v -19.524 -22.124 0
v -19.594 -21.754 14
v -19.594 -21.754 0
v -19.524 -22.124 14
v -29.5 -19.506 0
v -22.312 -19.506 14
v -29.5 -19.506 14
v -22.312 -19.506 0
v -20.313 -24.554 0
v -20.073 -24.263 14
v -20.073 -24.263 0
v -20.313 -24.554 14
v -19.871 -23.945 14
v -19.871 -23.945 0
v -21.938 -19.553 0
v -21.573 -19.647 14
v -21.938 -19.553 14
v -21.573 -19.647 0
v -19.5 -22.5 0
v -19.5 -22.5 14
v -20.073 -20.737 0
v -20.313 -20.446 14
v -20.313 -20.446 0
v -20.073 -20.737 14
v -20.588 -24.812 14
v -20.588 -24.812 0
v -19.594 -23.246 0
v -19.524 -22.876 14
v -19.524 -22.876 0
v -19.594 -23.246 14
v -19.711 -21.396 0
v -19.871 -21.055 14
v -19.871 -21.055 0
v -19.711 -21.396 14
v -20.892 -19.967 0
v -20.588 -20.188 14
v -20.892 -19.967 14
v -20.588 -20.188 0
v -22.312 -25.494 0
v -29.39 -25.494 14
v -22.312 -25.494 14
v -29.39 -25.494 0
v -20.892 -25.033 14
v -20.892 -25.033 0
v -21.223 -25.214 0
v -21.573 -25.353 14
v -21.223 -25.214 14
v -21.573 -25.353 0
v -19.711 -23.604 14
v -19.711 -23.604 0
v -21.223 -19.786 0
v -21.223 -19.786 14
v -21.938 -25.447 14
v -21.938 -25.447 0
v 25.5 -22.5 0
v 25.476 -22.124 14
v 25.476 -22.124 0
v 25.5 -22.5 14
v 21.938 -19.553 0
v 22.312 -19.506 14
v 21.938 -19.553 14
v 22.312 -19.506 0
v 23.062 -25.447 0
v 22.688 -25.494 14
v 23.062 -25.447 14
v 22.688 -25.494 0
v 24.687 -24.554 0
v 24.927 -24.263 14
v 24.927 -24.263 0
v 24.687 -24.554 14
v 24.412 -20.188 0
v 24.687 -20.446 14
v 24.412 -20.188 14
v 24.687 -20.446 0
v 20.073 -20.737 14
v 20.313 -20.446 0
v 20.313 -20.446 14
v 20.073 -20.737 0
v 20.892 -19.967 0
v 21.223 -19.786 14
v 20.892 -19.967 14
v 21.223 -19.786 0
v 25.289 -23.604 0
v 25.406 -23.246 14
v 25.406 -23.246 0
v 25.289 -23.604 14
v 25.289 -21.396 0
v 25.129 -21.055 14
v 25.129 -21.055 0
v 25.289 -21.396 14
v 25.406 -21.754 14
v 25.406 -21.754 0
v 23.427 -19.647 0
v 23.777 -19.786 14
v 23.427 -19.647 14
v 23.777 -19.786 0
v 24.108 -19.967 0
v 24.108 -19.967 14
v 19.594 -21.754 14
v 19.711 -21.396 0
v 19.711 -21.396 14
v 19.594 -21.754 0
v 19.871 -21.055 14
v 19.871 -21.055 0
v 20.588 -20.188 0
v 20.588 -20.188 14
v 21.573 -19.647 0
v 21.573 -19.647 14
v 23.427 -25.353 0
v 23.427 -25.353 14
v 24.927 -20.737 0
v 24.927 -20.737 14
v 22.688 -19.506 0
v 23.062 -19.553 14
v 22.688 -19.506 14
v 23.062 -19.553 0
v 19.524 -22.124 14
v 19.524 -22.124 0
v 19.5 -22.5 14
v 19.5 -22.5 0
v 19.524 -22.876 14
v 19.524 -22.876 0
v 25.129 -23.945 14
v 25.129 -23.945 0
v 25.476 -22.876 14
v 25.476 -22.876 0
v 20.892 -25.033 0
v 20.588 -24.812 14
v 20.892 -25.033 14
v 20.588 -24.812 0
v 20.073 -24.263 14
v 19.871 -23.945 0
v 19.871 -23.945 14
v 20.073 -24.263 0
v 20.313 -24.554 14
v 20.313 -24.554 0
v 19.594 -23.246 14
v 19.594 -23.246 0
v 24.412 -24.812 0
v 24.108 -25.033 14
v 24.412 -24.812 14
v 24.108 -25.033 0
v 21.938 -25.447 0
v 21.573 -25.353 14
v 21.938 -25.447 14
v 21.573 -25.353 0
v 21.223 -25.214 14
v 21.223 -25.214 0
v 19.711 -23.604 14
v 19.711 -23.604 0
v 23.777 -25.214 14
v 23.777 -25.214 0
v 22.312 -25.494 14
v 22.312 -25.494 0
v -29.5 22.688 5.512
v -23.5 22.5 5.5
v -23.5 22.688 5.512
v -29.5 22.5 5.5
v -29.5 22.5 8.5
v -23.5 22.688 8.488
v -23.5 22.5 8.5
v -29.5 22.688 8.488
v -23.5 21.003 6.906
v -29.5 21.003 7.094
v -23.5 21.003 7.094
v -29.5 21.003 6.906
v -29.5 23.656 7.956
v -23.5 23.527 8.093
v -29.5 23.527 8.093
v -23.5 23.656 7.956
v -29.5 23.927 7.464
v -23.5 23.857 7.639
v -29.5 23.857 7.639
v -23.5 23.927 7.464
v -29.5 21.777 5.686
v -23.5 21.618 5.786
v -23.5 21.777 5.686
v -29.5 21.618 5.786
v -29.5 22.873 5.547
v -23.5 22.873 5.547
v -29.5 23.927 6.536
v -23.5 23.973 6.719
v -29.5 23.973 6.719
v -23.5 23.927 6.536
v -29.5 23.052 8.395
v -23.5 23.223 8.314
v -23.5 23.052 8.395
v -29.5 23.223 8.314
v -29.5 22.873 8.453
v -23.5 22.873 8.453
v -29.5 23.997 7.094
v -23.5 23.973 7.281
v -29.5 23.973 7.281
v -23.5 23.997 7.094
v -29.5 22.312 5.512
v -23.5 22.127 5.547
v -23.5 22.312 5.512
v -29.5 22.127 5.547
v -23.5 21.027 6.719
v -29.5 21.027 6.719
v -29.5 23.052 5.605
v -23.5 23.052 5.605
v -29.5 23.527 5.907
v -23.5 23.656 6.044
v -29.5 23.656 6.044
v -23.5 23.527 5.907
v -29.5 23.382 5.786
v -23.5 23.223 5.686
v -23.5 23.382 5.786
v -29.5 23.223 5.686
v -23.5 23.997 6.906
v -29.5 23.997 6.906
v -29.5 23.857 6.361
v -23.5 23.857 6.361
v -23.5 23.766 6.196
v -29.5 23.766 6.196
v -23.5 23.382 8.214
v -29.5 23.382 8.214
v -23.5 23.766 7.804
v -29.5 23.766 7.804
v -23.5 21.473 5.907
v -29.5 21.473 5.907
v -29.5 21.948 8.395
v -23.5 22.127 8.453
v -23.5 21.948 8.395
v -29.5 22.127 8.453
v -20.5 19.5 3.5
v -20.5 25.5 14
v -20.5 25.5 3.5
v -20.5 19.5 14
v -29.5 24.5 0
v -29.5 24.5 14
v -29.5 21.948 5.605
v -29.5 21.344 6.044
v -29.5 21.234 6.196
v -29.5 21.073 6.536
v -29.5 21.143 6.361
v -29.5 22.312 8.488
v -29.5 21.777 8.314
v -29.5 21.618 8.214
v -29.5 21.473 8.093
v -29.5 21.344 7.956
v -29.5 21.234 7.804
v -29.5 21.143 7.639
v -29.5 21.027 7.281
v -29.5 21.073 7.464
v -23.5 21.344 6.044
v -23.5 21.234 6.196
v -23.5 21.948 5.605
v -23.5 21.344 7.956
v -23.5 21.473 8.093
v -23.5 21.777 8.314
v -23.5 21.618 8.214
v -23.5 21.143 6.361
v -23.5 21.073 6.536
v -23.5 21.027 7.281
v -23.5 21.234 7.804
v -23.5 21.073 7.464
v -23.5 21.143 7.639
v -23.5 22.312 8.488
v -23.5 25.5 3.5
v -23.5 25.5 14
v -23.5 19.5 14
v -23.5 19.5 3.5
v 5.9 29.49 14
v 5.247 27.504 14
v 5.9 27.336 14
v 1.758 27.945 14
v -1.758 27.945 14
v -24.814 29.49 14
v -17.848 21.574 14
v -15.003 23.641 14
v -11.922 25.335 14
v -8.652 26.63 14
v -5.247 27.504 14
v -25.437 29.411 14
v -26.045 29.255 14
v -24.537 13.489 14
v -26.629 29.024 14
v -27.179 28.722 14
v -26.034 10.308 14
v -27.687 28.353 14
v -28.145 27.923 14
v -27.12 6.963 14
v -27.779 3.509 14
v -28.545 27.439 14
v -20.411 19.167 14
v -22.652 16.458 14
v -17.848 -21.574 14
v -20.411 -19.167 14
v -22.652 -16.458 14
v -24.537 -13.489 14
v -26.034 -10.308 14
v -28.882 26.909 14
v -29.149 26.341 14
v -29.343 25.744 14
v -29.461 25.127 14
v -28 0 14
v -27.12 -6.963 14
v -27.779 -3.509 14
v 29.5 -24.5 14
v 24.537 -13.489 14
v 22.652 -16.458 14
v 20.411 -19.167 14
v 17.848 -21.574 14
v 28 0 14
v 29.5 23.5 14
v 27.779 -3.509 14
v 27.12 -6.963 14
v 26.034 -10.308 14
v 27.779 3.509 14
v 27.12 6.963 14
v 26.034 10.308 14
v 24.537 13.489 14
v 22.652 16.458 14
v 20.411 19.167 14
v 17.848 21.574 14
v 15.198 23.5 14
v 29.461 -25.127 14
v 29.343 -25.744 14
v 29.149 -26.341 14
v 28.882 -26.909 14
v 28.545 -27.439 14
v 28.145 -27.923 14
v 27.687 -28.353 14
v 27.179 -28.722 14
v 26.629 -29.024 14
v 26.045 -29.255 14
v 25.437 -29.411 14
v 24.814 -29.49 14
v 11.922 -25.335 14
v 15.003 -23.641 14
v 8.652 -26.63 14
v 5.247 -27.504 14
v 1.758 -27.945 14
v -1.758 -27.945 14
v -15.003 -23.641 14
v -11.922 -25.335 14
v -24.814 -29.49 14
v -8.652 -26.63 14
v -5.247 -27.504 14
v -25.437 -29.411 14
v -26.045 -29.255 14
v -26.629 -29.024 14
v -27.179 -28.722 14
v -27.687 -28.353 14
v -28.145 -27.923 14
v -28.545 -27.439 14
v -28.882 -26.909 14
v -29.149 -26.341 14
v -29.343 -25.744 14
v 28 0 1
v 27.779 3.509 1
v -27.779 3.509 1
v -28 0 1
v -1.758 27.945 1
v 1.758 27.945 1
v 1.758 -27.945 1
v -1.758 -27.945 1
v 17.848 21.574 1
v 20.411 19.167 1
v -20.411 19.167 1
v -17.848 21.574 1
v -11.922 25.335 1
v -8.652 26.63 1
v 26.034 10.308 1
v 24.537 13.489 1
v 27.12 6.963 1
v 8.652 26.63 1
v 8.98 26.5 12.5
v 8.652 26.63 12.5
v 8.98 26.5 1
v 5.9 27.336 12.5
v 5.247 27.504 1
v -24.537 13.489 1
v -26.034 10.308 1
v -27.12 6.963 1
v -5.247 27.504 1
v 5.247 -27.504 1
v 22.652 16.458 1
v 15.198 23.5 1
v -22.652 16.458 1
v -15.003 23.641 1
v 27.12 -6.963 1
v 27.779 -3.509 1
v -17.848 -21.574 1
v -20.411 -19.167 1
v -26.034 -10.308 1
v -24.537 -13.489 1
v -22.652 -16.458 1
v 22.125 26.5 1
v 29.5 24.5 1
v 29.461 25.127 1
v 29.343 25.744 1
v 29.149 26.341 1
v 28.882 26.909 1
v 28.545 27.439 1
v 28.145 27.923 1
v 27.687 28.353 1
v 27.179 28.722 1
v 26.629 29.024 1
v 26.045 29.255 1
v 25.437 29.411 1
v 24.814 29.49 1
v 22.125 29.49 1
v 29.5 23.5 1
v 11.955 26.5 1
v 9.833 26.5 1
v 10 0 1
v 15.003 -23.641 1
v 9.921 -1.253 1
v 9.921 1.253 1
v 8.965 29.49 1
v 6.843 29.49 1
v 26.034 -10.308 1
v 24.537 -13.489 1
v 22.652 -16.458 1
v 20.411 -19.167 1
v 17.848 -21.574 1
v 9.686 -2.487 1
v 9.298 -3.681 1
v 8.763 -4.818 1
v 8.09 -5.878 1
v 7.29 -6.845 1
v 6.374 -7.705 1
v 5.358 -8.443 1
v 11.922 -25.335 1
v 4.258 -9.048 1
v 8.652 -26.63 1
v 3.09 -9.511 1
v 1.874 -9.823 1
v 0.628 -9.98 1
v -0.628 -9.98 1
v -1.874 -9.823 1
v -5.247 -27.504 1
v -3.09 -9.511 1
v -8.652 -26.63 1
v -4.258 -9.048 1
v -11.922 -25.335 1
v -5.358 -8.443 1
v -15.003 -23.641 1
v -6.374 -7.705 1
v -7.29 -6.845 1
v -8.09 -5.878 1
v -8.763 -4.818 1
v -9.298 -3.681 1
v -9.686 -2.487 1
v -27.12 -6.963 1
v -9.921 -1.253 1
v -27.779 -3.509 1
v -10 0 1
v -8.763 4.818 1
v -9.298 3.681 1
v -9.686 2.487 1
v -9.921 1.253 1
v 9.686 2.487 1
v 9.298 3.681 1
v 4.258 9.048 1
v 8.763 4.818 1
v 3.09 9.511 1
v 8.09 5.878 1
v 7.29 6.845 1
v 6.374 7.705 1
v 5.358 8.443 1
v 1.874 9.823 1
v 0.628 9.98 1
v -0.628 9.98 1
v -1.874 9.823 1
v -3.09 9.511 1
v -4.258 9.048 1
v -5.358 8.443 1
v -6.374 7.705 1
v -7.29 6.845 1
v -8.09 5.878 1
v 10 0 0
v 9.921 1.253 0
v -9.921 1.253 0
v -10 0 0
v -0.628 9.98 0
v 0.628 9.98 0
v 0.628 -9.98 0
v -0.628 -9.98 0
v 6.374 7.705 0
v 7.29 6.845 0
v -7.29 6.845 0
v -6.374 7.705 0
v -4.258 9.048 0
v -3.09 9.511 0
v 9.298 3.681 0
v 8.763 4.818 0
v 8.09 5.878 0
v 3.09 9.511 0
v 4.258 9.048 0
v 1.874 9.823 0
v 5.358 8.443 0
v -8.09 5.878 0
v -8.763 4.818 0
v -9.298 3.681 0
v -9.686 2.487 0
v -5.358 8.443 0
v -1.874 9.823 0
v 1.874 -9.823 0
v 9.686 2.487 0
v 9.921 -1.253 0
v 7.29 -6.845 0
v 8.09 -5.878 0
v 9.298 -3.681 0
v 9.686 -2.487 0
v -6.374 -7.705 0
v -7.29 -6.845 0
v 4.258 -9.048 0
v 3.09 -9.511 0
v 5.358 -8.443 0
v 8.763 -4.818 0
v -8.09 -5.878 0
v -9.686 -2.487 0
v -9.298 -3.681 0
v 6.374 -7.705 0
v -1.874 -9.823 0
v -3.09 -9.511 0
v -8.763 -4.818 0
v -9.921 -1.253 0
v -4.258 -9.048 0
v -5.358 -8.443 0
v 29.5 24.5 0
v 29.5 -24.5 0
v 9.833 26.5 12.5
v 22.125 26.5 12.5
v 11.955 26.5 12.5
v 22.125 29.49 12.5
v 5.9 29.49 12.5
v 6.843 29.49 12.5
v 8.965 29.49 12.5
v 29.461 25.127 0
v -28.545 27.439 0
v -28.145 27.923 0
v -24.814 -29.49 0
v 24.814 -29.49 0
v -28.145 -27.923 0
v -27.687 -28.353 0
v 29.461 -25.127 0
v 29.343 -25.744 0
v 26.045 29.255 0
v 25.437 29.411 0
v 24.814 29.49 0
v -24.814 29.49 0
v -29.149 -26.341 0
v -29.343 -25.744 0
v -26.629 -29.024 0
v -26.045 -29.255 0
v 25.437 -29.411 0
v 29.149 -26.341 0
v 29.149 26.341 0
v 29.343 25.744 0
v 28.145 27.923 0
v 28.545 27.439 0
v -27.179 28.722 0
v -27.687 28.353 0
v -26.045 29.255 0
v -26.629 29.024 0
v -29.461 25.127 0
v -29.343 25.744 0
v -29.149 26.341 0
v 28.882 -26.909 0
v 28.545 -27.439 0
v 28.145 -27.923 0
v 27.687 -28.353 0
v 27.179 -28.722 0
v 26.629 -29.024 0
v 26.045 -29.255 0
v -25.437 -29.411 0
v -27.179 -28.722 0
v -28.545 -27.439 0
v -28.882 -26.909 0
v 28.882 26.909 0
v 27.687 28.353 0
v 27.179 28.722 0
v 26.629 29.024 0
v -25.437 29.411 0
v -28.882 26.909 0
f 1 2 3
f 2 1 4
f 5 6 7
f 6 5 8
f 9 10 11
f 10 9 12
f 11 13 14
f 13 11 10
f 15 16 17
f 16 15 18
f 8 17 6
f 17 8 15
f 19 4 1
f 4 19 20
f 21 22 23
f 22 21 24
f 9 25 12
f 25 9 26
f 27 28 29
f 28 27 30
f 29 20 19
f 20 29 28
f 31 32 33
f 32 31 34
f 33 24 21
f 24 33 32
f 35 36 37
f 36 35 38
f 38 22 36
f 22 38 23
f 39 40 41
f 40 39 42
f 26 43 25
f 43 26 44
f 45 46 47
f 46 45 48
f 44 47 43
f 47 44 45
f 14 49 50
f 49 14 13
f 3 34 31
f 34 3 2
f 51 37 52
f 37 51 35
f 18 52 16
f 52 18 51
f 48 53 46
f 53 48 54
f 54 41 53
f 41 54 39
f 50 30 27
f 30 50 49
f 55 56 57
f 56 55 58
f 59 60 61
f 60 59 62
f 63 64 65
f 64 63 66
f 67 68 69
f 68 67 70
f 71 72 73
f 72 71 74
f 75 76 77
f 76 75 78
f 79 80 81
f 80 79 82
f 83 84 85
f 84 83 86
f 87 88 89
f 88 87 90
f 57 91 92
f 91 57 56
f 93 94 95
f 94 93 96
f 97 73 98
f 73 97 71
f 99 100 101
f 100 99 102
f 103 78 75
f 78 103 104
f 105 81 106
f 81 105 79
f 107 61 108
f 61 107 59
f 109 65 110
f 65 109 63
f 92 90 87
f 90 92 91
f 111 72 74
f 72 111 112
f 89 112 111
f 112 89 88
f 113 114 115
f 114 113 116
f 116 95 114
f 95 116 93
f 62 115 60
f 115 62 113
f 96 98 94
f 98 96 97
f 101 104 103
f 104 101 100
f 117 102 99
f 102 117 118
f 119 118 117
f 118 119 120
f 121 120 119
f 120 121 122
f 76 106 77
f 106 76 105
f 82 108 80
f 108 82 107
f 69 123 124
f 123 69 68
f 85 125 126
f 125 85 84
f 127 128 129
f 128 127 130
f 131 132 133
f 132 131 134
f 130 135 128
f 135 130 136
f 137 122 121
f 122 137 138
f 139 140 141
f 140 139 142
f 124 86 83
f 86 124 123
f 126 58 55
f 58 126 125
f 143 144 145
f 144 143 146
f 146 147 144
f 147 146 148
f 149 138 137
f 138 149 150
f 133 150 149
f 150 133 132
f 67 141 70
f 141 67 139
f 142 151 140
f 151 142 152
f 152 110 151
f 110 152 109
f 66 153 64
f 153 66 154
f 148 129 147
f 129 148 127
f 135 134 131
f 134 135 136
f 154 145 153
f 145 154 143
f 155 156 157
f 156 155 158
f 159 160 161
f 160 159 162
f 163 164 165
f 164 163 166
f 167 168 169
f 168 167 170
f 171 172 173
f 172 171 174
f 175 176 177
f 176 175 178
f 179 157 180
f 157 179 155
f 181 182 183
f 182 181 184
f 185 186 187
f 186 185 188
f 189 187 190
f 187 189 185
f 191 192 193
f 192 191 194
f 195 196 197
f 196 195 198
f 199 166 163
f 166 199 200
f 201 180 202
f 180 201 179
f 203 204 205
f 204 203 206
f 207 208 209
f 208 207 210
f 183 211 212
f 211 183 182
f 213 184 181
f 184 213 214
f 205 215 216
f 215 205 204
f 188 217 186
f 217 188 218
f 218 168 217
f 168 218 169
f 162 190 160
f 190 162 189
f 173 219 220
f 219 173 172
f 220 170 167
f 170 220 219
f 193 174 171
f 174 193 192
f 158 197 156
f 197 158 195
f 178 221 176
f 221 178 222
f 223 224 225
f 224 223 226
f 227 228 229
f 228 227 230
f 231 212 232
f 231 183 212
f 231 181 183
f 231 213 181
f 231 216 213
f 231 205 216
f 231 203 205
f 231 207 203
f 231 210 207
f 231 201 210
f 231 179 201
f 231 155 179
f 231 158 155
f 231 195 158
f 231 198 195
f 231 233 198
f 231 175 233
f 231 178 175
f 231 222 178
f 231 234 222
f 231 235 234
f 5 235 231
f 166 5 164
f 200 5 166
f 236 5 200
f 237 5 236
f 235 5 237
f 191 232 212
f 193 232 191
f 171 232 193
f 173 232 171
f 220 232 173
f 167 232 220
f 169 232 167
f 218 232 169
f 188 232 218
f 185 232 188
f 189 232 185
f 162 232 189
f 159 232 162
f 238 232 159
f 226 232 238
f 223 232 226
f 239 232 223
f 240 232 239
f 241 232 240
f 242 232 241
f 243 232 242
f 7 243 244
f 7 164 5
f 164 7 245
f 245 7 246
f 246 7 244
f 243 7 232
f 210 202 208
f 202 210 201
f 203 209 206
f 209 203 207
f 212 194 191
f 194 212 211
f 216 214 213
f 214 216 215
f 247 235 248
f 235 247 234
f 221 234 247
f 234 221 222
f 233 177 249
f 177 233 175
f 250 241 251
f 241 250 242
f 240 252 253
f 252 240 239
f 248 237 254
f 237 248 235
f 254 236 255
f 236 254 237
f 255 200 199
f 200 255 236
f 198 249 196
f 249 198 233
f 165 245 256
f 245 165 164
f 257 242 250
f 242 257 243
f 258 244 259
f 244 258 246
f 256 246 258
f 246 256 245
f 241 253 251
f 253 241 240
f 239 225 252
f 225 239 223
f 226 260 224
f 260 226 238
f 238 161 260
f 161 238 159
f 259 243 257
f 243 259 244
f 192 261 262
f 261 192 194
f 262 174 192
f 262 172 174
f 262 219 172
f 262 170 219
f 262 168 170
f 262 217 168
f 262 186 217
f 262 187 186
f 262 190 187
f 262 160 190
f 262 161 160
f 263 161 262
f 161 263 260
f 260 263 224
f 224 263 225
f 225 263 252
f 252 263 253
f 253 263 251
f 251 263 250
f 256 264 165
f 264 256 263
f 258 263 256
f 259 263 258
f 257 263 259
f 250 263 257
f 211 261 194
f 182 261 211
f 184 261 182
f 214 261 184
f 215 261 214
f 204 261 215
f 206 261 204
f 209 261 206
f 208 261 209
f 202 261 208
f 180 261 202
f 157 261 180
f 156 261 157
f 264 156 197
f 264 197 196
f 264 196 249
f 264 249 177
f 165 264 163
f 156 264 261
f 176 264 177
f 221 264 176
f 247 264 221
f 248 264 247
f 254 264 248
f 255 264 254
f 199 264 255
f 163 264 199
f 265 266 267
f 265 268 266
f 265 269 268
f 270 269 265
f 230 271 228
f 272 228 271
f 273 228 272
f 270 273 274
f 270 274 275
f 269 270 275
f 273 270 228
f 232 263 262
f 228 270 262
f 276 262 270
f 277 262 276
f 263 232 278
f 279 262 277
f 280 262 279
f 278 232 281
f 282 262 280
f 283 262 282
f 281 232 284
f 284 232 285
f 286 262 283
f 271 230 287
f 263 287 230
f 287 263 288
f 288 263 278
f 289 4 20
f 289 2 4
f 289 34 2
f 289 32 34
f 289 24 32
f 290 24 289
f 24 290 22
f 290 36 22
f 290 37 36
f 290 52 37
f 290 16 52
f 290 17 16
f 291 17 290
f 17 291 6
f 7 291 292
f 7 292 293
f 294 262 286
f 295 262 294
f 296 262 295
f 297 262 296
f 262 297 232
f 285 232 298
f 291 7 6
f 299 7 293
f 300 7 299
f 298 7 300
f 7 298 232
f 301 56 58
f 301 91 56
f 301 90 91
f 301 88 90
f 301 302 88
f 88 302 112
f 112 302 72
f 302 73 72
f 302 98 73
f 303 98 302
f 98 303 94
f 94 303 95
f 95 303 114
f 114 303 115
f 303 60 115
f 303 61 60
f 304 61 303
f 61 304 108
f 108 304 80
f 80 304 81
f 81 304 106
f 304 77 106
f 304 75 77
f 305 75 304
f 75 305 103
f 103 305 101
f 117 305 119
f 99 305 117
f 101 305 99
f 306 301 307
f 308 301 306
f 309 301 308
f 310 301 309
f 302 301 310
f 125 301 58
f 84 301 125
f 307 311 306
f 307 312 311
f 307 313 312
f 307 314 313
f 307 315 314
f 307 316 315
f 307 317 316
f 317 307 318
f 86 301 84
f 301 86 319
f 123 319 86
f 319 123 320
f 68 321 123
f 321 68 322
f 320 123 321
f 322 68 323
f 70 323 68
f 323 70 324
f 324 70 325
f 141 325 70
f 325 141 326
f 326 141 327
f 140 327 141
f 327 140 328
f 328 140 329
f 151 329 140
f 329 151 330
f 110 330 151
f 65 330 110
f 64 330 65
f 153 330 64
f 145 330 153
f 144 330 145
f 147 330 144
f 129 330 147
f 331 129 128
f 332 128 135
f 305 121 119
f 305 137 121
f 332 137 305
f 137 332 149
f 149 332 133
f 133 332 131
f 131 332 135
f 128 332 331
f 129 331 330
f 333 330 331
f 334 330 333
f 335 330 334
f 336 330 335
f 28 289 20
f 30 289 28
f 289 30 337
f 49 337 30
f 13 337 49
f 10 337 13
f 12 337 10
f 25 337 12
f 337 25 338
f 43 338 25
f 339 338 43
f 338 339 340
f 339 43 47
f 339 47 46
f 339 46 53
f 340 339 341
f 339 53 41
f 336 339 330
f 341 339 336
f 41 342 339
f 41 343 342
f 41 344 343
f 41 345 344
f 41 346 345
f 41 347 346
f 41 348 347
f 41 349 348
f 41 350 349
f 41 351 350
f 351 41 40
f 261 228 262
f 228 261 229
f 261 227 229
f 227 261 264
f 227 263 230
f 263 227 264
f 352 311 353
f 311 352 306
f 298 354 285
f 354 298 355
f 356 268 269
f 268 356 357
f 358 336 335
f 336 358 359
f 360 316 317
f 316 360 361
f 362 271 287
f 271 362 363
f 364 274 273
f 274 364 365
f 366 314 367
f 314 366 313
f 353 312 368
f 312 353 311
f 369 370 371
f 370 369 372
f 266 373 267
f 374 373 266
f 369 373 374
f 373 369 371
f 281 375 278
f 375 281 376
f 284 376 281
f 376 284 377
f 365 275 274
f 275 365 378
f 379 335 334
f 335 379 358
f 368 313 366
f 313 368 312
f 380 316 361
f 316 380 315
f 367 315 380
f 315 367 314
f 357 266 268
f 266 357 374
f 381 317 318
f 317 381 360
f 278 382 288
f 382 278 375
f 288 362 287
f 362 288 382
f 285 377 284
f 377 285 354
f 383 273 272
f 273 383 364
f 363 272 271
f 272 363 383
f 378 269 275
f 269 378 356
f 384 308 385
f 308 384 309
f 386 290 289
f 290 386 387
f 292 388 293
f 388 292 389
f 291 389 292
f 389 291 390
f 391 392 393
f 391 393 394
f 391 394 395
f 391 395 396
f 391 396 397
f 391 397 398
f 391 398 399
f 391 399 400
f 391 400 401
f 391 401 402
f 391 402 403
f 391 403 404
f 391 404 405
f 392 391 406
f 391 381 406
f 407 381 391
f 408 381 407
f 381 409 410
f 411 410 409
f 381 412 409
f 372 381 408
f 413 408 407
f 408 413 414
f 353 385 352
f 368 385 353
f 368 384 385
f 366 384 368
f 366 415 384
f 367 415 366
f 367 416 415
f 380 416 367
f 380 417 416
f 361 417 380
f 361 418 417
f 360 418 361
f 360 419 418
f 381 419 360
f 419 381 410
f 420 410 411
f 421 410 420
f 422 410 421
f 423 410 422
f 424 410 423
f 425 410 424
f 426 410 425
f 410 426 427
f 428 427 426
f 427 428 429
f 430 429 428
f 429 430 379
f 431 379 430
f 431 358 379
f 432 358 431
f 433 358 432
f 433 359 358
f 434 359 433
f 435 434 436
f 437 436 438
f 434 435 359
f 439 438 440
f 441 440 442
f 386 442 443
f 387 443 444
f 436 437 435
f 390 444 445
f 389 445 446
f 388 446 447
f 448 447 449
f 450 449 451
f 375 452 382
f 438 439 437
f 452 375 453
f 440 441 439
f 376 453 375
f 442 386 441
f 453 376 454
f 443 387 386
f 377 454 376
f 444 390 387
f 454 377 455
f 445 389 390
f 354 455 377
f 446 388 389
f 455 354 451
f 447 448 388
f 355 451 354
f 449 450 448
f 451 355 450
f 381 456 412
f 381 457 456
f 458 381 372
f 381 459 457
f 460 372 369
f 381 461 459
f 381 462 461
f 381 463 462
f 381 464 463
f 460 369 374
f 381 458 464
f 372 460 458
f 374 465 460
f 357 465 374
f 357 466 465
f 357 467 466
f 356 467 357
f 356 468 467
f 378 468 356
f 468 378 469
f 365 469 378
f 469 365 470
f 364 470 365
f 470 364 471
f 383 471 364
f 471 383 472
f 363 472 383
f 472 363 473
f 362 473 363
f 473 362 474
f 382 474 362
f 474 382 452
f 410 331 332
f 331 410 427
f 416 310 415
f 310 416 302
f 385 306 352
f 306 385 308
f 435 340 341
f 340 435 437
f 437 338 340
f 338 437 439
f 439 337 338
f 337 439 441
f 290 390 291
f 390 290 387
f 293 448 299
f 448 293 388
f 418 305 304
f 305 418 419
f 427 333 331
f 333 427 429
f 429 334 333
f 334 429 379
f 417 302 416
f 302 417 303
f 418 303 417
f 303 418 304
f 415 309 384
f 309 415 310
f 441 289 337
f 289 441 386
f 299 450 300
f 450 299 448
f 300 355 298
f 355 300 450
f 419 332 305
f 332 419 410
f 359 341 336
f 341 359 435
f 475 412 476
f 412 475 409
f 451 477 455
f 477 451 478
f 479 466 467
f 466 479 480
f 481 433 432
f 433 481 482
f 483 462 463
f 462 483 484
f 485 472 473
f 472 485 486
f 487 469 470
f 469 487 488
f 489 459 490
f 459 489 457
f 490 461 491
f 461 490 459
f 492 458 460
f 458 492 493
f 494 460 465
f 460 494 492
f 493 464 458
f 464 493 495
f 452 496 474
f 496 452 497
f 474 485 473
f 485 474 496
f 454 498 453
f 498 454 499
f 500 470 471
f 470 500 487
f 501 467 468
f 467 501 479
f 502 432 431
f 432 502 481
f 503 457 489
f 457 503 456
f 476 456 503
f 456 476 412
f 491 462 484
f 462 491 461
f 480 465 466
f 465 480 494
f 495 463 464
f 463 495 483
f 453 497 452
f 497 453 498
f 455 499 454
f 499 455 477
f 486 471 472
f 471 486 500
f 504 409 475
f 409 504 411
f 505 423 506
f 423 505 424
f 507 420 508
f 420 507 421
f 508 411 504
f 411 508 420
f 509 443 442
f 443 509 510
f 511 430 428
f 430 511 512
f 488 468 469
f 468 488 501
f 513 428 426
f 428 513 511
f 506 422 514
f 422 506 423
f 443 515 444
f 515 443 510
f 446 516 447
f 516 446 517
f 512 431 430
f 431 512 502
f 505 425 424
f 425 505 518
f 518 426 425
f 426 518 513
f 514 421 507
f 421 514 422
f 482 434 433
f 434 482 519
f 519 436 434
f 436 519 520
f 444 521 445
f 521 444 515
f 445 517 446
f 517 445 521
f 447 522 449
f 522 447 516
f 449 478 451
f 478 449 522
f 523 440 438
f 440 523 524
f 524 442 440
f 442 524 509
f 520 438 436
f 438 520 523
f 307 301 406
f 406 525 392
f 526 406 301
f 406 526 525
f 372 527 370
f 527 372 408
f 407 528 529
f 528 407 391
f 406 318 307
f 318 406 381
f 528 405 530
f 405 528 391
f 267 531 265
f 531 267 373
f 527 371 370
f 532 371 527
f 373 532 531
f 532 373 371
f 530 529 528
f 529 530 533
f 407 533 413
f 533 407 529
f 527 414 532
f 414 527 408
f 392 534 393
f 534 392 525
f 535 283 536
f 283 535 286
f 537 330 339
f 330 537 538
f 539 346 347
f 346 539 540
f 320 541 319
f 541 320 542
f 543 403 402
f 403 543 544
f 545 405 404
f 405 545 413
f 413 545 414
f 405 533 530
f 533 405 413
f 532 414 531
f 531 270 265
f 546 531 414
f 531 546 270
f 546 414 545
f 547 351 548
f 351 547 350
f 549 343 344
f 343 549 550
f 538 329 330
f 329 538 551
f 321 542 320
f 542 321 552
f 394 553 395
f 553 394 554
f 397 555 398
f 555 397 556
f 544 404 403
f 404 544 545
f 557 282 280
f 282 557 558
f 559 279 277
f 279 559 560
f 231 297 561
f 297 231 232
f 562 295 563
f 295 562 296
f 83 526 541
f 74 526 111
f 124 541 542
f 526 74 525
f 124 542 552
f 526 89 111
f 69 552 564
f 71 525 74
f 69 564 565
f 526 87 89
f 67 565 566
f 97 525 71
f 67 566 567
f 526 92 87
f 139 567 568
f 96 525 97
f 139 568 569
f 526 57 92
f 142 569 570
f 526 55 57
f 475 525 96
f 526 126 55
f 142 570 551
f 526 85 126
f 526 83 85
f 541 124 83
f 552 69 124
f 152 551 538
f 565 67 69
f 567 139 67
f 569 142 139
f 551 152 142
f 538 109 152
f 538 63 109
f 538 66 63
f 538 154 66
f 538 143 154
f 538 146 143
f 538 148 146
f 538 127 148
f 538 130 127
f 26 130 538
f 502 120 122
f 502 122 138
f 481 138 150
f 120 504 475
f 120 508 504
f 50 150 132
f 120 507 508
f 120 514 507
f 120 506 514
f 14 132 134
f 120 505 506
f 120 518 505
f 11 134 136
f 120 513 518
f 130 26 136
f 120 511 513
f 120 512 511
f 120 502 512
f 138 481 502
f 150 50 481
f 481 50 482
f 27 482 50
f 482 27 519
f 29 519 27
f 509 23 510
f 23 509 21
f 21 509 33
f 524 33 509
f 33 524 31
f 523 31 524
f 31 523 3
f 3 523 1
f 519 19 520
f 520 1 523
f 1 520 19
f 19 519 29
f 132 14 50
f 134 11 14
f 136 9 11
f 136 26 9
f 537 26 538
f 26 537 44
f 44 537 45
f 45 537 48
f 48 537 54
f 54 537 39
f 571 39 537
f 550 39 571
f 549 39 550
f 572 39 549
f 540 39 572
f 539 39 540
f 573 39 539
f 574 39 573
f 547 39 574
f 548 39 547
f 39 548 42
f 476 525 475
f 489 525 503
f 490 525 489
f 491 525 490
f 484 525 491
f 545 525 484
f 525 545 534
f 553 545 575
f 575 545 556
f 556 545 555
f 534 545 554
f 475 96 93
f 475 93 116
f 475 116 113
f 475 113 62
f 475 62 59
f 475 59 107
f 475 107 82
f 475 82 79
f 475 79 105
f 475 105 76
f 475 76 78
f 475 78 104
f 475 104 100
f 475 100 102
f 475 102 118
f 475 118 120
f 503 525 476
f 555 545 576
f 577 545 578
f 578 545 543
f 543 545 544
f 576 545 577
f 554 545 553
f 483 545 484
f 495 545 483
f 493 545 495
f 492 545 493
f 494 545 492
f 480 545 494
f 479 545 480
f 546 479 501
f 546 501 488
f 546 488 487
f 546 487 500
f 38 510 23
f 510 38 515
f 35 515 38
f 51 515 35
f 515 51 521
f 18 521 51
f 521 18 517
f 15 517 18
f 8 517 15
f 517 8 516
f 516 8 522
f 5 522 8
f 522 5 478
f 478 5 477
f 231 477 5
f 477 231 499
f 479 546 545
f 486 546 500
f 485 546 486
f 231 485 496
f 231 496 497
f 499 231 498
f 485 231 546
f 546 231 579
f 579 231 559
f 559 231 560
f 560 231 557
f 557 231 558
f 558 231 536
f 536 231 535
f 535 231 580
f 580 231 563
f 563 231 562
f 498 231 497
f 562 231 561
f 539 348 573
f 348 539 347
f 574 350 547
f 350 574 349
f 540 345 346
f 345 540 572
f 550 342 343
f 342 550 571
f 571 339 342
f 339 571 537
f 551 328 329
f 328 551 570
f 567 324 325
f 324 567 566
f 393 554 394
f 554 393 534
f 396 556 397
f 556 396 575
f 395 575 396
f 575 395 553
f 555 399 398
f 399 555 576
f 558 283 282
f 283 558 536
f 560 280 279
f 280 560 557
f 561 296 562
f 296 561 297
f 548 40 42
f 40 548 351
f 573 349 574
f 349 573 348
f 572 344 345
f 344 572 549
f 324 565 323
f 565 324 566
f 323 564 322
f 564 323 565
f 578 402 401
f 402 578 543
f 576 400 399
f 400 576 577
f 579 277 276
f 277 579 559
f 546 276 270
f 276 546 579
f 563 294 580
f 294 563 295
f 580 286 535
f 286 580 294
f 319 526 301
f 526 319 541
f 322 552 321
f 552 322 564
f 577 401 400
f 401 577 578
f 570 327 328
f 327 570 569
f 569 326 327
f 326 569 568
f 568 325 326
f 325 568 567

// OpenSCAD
$fn = 50;


difference() {
	union() {
		translate(v = [0, 0, 0]) {
			rotate(a = [0, 0, 0]) {
				hull() {
					translate(v = [-24.5000000000, 24.5000000000, 0]) {
						rotate(a = [0, 0, 0]) {
							translate(v = [0, 0, 0]) {
								rotate(a = [0, 0, 0]) {
									cylinder(h = 14, r = 5);
								}
							}
						}
					}
					translate(v = [24.5000000000, 24.5000000000, 0]) {
						rotate(a = [0, 0, 0]) {
							translate(v = [0, 0, 0]) {
								rotate(a = [0, 0, 0]) {
									cylinder(h = 14, r = 5);
								}
							}
						}
					}
					translate(v = [-24.5000000000, -24.5000000000, 0]) {
						rotate(a = [0, 0, 0]) {
							translate(v = [0, 0, 0]) {
								rotate(a = [0, 0, 0]) {
									cylinder(h = 14, r = 5);
								}
							}
						}
					}
					translate(v = [24.5000000000, -24.5000000000, 0]) {
						rotate(a = [0, 0, 0]) {
							translate(v = [0, 0, 0]) {
								rotate(a = [0, 0, 0]) {
									cylinder(h = 14, r = 5);
								}
							}
						}
					}
				}
			}
		}
	}
	union() {
		translate(v = [-30.0000000000, -22.5000000000, -125]) {
			rotate(a = [0, 0, 0]) {
				hull() {
					translate(v = [7.5000000000, 0, 0]) {
						rotate(a = [0, 0, 0]) {
							translate(v = [0, 0, 0]) {
								rotate(a = [0, 0, 0]) {
									cylinder(h = 250, r = 3.0000000000);
								}
							}
						}
					}
					translate(v = [-7.5000000000, 0, 0]) {
						rotate(a = [0, 0, 0]) {
							translate(v = [0, 0, 0]) {
								rotate(a = [0, 0, 0]) {
									cylinder(h = 250, r = 3.0000000000);
								}
							}
						}
					}
				}
			}
		}
		translate(v = [22.5000000000, -22.5000000000, -125.0000000000]) {
			rotate(a = [0, 0, 0]) {
				cylinder(h = 250, r = 3.0000000000);
			}
		}
		translate(v = [-29.5000000000, 22.5000000000, 7.0000000000]) {
			rotate(a = [0, 90, 0]) {
				cylinder(h = 9, r = 1.5000000000);
			}
		}
		translate(v = [-23.5000000000, 19.5000000000, 3.5000000000]) {
			rotate(a = [0, 0, 0]) {
				cube(size = [3, 6, 10.5000000000]);
			}
		}
		translate(v = [0, 0, 1.0000000000]) {
			rotate(a = [0, 0, 0]) {
				cylinder(h = 16, r = 28.0000000000);
			}
		}
		translate(v = [0, 0, -7.0000000000]) {
			rotate(a = [0, 0, 0]) {
				cylinder(h = 14, r = 10.0000000000);
			}
		}
		translate(v = [0.0000000000, 23.5000000000, 1]) {
			rotate(a = [0, 0, 0]) {
				cube(size = [29.5000000000, 3, 16]);
			}
		}
		translate(v = [22.1250000000, 23.5000000000, 1]) {
			rotate(a = [0, 0, 0]) {
				cube(size = [7.3750000000, 6, 16]);
			}
		}
		translate(v = [5.9000000000, 23.5000000000, 12.5000000000]) {
			rotate(a = [0, 0, 0]) {
				cube(size = [23.6000000000, 6, 1.5000000000]);
			}
		}
		translate(v = [6.0833333333, 30.2500000000, 1]) {
			rotate(a = [0, 0, -45]) {
				cube(size = [7.5000000000, 1.5000000000, 16]);
			}
		}
	}
}
